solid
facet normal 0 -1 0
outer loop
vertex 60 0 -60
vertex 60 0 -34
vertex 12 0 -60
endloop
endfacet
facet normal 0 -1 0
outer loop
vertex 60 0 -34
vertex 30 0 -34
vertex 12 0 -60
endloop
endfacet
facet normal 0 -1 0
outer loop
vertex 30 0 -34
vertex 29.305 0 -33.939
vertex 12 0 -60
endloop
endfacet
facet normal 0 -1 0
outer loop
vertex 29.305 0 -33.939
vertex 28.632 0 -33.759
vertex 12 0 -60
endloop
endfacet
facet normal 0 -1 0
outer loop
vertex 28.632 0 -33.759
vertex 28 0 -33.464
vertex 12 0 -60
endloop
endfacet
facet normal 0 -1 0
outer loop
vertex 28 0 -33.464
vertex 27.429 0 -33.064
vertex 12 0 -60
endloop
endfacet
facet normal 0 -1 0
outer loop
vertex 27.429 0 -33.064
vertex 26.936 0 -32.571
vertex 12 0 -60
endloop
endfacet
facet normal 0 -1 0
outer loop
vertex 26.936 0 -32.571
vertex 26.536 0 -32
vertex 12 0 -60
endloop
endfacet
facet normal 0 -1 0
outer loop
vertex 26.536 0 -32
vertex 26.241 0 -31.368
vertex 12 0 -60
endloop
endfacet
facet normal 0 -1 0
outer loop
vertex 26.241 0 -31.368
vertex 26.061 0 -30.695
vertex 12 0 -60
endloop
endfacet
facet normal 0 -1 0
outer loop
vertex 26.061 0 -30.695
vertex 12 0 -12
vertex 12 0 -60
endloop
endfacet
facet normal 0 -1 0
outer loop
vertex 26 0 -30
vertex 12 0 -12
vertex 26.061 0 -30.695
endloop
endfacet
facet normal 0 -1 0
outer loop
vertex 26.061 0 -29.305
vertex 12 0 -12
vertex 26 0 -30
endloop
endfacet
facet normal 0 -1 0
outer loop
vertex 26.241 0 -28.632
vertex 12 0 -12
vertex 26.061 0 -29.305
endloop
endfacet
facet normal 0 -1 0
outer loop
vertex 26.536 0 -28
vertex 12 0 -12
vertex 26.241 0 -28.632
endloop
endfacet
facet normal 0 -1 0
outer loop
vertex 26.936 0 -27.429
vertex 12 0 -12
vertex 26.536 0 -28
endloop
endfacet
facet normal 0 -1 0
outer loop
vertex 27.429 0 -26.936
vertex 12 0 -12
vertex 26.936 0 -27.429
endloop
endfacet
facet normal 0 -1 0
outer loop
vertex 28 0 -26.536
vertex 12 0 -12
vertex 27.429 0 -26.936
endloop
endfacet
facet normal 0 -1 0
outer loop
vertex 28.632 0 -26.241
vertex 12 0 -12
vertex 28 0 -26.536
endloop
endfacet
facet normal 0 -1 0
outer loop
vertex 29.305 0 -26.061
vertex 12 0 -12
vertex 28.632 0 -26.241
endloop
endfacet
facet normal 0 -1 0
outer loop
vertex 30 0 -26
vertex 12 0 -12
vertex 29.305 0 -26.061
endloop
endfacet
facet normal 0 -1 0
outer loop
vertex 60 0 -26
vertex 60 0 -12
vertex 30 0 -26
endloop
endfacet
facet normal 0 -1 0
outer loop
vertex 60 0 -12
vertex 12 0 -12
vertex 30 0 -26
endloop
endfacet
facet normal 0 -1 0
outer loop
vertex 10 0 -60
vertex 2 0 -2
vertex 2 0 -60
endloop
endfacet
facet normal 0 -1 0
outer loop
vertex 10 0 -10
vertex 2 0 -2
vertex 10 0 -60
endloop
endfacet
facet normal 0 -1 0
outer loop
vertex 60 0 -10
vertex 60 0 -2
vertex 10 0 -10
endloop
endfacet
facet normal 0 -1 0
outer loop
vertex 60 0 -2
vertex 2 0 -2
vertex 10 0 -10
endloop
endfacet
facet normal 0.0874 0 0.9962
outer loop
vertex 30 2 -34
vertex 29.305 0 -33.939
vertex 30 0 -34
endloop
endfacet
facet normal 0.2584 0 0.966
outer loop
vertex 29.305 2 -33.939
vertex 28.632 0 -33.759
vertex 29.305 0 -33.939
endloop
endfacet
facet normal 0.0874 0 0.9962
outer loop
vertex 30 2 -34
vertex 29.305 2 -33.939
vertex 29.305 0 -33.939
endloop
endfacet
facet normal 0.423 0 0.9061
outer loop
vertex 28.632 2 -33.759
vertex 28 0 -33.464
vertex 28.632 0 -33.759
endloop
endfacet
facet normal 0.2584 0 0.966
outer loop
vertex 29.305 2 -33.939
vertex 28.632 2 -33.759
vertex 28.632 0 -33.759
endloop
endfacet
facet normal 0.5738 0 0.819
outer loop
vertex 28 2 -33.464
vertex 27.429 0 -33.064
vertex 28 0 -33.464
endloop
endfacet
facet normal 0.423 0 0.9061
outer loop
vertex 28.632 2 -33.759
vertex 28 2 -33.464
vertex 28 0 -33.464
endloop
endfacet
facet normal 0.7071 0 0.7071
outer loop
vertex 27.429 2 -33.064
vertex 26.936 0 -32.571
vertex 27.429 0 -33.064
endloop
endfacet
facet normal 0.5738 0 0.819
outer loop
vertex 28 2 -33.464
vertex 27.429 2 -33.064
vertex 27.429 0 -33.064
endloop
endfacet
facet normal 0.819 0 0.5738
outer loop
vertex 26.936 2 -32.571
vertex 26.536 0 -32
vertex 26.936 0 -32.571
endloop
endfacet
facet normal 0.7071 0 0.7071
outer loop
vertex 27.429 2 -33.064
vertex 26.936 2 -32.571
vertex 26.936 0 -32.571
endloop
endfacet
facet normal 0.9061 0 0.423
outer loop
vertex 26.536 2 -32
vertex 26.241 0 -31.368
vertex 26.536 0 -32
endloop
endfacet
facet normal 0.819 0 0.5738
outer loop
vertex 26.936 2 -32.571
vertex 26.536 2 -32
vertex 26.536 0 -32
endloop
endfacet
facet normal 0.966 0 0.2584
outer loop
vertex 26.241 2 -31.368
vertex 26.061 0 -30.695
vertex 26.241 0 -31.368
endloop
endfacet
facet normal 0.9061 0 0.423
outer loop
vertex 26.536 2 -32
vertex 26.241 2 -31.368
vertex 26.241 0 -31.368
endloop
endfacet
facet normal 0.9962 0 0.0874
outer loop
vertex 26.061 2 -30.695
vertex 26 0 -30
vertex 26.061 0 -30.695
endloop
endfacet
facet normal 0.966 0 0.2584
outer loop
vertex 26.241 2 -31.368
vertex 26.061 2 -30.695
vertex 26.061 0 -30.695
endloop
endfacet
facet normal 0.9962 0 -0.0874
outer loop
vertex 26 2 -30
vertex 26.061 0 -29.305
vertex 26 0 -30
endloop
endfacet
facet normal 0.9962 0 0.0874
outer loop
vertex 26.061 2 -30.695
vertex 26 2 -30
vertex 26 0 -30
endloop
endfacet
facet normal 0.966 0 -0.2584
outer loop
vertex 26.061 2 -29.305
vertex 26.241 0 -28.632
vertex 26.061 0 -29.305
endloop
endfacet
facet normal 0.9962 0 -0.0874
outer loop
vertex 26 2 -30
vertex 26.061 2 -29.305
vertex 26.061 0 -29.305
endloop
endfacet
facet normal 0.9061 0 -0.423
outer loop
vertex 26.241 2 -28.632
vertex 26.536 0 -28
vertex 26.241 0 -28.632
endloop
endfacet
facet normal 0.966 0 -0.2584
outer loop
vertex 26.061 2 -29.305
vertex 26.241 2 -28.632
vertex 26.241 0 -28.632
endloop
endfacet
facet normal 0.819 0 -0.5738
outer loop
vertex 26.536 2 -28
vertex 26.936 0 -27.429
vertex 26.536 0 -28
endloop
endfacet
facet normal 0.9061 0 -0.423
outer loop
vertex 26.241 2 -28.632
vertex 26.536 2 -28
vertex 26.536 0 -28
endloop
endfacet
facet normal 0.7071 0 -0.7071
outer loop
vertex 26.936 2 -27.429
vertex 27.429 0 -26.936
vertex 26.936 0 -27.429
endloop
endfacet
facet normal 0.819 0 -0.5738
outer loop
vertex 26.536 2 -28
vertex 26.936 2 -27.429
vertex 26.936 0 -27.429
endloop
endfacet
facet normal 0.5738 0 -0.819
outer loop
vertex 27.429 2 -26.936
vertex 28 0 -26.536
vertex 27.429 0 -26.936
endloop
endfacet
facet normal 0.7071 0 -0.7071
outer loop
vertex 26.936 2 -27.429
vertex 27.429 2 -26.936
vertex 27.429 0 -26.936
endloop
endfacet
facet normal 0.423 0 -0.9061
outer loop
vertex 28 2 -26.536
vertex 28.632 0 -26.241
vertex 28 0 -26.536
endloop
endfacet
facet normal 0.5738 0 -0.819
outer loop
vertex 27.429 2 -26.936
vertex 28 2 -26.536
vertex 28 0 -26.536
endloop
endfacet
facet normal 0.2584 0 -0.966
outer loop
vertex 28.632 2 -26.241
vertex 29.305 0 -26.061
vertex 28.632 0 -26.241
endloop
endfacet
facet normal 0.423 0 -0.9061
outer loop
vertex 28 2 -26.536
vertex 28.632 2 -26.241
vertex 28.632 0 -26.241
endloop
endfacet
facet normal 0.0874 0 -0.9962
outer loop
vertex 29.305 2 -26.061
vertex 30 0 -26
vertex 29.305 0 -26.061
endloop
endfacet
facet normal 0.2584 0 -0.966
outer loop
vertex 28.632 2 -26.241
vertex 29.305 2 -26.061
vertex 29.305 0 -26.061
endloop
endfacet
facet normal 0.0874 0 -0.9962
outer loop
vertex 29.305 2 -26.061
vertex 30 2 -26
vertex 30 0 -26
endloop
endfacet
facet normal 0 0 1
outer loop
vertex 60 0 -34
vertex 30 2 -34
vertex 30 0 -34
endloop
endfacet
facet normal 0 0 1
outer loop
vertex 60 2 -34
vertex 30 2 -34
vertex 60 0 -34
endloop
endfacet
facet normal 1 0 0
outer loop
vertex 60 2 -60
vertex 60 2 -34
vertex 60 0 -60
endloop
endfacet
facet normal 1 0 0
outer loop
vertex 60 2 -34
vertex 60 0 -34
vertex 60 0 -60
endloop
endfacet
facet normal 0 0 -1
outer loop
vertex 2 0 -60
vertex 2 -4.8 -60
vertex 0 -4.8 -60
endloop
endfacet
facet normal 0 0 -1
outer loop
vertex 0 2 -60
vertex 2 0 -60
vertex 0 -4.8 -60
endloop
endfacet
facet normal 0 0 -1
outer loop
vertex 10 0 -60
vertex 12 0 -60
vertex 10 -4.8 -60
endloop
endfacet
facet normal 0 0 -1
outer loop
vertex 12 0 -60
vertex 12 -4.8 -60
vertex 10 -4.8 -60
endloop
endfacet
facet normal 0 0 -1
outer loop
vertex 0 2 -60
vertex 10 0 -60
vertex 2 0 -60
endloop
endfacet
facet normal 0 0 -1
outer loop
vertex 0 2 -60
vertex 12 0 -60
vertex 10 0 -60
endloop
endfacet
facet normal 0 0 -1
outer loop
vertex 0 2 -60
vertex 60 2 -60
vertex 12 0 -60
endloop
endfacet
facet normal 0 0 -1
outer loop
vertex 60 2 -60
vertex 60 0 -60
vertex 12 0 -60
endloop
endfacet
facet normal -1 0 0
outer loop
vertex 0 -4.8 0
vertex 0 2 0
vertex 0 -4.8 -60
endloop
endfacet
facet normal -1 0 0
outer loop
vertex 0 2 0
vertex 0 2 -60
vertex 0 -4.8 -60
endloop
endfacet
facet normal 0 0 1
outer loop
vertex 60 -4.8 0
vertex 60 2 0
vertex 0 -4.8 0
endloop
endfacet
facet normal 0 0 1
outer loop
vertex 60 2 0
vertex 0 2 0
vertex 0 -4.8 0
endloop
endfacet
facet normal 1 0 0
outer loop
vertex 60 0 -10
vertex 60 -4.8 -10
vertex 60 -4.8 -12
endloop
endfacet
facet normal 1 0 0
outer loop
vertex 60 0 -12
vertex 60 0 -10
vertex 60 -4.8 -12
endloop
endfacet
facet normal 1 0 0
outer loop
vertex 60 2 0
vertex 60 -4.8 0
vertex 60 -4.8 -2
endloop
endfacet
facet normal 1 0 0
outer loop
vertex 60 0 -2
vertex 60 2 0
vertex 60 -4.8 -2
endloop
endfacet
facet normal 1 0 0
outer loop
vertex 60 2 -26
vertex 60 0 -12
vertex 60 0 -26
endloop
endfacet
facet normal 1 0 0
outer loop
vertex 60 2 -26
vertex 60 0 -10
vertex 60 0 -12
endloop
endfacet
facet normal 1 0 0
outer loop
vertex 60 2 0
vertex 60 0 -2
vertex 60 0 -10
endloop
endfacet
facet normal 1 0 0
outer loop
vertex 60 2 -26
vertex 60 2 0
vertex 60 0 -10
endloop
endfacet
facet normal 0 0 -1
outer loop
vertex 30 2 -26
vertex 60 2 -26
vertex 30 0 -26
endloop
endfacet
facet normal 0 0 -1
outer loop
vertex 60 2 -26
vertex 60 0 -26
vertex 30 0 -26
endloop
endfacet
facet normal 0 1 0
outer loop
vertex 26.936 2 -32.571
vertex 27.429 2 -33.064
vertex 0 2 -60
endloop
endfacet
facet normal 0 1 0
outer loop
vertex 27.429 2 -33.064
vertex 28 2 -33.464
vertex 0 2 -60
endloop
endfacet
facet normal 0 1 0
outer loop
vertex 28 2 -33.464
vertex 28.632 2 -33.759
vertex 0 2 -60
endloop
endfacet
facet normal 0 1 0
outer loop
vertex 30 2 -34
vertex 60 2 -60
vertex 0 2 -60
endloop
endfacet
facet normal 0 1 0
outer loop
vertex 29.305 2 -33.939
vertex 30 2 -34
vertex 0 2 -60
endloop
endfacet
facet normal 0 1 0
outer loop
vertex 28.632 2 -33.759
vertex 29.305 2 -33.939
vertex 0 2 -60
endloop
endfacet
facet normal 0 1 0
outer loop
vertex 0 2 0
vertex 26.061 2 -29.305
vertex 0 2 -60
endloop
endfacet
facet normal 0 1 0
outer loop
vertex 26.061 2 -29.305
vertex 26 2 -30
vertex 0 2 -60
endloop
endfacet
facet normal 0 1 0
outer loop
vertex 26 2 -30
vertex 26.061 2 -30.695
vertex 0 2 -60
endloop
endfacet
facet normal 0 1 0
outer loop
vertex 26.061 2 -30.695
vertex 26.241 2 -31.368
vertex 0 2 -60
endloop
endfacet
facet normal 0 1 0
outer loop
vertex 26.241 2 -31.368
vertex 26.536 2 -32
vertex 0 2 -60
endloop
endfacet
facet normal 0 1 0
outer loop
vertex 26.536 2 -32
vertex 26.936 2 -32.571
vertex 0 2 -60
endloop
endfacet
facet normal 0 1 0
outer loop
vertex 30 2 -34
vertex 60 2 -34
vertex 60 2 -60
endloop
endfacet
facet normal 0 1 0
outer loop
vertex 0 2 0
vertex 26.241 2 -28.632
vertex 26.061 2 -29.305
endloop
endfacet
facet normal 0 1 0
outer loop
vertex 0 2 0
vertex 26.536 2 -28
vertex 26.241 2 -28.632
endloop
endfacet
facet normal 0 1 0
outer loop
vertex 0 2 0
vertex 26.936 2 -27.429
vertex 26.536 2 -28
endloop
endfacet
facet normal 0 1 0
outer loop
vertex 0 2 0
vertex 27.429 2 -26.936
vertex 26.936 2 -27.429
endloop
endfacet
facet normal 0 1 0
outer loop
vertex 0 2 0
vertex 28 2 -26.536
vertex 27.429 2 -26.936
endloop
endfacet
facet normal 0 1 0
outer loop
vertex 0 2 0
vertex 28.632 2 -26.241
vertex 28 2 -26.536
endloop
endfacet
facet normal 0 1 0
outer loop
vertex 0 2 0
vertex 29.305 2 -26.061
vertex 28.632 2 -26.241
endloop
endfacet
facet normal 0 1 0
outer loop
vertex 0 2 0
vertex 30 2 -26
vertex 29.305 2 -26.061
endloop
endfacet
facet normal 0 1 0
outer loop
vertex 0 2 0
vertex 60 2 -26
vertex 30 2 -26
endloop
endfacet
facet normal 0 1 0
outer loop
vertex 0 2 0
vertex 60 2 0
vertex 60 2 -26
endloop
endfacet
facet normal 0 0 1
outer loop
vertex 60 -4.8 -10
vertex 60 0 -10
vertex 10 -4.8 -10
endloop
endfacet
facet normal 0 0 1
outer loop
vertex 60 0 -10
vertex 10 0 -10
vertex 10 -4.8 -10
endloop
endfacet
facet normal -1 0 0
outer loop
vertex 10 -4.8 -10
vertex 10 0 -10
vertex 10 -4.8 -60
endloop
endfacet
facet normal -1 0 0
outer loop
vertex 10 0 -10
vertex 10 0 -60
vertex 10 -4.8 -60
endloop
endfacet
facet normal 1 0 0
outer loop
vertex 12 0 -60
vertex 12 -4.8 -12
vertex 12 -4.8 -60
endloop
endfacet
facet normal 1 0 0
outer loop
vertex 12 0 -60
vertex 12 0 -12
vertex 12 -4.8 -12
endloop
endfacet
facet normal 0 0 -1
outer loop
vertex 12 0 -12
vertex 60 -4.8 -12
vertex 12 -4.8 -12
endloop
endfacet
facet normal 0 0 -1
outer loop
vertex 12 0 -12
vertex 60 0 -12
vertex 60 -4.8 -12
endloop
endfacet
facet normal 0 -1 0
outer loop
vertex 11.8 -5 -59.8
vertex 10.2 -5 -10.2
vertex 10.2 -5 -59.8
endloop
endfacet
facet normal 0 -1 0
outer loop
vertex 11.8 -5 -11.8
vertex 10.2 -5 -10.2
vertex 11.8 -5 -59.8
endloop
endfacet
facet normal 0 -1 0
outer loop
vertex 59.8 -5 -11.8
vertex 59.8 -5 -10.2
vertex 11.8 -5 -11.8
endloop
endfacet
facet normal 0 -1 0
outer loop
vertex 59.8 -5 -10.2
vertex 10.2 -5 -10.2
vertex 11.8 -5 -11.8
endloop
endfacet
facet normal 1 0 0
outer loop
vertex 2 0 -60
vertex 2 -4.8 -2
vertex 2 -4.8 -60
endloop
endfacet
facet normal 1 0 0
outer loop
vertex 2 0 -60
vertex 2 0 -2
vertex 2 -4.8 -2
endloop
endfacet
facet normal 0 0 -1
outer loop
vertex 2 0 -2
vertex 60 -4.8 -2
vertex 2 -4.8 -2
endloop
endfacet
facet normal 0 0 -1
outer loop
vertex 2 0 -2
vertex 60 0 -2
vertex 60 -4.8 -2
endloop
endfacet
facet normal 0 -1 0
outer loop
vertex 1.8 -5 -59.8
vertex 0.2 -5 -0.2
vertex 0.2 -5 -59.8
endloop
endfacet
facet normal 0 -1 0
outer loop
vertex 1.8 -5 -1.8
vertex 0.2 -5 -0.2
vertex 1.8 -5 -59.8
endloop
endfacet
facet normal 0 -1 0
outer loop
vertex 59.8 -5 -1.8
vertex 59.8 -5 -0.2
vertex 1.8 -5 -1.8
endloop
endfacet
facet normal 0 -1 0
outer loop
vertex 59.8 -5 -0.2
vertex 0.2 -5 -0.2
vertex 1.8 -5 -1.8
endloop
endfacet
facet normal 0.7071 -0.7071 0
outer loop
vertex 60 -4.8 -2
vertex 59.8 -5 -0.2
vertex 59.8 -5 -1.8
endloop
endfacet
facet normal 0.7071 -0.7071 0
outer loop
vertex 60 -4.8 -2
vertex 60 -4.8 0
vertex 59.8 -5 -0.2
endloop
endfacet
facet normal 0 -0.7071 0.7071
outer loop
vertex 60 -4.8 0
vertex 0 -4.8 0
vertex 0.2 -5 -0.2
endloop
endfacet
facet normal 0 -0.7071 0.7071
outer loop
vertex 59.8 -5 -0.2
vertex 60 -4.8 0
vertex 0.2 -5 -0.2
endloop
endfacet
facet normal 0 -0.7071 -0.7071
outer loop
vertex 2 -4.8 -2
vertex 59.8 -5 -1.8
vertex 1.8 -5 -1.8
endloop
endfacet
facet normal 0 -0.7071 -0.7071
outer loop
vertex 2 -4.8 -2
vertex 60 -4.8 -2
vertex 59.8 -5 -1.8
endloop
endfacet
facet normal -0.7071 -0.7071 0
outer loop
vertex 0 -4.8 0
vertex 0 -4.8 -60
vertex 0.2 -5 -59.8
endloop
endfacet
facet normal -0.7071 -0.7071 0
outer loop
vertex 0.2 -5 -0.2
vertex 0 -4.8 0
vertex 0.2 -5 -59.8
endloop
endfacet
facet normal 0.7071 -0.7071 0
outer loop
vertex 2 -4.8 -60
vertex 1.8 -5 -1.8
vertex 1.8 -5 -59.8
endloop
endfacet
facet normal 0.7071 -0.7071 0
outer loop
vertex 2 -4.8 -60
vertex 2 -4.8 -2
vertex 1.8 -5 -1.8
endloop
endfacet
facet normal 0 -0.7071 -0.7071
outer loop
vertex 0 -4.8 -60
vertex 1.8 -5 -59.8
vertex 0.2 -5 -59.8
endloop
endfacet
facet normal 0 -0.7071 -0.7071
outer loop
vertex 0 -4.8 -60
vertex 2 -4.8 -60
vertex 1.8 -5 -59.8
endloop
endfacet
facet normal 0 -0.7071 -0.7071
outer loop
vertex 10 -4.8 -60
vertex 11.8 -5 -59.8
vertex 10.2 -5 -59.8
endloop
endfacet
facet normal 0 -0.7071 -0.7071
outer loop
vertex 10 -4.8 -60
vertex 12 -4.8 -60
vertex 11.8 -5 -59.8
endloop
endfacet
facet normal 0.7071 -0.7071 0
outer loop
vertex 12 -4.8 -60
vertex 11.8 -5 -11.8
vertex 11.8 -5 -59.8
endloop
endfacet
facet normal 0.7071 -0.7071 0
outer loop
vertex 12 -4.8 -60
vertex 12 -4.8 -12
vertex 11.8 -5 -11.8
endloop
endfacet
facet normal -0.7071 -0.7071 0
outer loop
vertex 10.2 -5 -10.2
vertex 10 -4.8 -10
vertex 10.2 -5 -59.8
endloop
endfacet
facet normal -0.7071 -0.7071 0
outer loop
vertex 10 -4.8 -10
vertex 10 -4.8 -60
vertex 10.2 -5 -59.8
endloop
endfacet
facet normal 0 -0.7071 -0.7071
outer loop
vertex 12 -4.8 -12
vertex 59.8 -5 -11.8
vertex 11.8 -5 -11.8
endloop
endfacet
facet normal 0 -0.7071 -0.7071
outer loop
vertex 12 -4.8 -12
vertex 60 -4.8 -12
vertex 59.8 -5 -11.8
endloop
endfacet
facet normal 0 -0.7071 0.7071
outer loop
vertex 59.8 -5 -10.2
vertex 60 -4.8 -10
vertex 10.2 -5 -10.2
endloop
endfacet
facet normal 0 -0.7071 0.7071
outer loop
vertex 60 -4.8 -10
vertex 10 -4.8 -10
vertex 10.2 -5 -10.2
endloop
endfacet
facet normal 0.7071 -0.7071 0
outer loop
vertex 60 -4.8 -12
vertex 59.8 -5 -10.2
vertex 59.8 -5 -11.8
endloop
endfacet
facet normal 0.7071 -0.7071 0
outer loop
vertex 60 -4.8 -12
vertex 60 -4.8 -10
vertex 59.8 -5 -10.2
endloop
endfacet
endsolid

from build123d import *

# Parameters (mm, degrees)
BOSS_EXTRUDE1_DEPTH = 2
BOSS_EXTRUDE2_DEPTH = 5
CHAMFER1_SIZE       = 0.2


with BuildPart() as part:
    # Sketch1 → Boss-Extrude1 (new body)
    with BuildSketch(Plane(origin=(0, 0, 0), x_dir=(1, 0, 0), z_dir=(0, 1, 0))):
        with BuildLine():
            Line((60, 26), (30, 26))
            ThreePointArc((30, 26), (26, 30), (30, 34))
            Line((30, 34), (60, 34))
            Line((60, 34), (60, 60))
            Line((60, 60), (0, 60))
            Line((0, 60), (0, 0))
            Line((0, 0), (60, 0))
            Line((60, 0), (60, 26))
        make_face()
    extrude(amount=BOSS_EXTRUDE1_DEPTH)

    # Sketch2 → Boss-Extrude2 (add)
    with BuildSketch(Plane.XZ):
        Polygon((60, -12), (60, -10), (10, -10), (10, -60), (12, -60), (12, -12), align=None)
        Polygon((60, -2), (60, 0), (0, 0), (0, -60), (2, -60), (2, -10), (2, -2), (10, -2), align=None)
    extrude(amount=BOSS_EXTRUDE2_DEPTH)

    # Chamfer1
    chamfer1_edges = [part.edges().sort_by_distance(p)[0] for p in [
        (35, -5, -10),
        (10, -5, -35),
        (11, -5, -60),
        (12, -5, -36),
        (36, -5, -12),
        (60, -5, -11),
        (2, -5, -31),
        (31, -5, -2),
        (60, -5, -1),
        (30, -5, 0),
        (0, -5, -30),
        (1, -5, -60),
    ]]
    chamfer(chamfer1_edges, length=CHAMFER1_SIZE)


solid = part.part
